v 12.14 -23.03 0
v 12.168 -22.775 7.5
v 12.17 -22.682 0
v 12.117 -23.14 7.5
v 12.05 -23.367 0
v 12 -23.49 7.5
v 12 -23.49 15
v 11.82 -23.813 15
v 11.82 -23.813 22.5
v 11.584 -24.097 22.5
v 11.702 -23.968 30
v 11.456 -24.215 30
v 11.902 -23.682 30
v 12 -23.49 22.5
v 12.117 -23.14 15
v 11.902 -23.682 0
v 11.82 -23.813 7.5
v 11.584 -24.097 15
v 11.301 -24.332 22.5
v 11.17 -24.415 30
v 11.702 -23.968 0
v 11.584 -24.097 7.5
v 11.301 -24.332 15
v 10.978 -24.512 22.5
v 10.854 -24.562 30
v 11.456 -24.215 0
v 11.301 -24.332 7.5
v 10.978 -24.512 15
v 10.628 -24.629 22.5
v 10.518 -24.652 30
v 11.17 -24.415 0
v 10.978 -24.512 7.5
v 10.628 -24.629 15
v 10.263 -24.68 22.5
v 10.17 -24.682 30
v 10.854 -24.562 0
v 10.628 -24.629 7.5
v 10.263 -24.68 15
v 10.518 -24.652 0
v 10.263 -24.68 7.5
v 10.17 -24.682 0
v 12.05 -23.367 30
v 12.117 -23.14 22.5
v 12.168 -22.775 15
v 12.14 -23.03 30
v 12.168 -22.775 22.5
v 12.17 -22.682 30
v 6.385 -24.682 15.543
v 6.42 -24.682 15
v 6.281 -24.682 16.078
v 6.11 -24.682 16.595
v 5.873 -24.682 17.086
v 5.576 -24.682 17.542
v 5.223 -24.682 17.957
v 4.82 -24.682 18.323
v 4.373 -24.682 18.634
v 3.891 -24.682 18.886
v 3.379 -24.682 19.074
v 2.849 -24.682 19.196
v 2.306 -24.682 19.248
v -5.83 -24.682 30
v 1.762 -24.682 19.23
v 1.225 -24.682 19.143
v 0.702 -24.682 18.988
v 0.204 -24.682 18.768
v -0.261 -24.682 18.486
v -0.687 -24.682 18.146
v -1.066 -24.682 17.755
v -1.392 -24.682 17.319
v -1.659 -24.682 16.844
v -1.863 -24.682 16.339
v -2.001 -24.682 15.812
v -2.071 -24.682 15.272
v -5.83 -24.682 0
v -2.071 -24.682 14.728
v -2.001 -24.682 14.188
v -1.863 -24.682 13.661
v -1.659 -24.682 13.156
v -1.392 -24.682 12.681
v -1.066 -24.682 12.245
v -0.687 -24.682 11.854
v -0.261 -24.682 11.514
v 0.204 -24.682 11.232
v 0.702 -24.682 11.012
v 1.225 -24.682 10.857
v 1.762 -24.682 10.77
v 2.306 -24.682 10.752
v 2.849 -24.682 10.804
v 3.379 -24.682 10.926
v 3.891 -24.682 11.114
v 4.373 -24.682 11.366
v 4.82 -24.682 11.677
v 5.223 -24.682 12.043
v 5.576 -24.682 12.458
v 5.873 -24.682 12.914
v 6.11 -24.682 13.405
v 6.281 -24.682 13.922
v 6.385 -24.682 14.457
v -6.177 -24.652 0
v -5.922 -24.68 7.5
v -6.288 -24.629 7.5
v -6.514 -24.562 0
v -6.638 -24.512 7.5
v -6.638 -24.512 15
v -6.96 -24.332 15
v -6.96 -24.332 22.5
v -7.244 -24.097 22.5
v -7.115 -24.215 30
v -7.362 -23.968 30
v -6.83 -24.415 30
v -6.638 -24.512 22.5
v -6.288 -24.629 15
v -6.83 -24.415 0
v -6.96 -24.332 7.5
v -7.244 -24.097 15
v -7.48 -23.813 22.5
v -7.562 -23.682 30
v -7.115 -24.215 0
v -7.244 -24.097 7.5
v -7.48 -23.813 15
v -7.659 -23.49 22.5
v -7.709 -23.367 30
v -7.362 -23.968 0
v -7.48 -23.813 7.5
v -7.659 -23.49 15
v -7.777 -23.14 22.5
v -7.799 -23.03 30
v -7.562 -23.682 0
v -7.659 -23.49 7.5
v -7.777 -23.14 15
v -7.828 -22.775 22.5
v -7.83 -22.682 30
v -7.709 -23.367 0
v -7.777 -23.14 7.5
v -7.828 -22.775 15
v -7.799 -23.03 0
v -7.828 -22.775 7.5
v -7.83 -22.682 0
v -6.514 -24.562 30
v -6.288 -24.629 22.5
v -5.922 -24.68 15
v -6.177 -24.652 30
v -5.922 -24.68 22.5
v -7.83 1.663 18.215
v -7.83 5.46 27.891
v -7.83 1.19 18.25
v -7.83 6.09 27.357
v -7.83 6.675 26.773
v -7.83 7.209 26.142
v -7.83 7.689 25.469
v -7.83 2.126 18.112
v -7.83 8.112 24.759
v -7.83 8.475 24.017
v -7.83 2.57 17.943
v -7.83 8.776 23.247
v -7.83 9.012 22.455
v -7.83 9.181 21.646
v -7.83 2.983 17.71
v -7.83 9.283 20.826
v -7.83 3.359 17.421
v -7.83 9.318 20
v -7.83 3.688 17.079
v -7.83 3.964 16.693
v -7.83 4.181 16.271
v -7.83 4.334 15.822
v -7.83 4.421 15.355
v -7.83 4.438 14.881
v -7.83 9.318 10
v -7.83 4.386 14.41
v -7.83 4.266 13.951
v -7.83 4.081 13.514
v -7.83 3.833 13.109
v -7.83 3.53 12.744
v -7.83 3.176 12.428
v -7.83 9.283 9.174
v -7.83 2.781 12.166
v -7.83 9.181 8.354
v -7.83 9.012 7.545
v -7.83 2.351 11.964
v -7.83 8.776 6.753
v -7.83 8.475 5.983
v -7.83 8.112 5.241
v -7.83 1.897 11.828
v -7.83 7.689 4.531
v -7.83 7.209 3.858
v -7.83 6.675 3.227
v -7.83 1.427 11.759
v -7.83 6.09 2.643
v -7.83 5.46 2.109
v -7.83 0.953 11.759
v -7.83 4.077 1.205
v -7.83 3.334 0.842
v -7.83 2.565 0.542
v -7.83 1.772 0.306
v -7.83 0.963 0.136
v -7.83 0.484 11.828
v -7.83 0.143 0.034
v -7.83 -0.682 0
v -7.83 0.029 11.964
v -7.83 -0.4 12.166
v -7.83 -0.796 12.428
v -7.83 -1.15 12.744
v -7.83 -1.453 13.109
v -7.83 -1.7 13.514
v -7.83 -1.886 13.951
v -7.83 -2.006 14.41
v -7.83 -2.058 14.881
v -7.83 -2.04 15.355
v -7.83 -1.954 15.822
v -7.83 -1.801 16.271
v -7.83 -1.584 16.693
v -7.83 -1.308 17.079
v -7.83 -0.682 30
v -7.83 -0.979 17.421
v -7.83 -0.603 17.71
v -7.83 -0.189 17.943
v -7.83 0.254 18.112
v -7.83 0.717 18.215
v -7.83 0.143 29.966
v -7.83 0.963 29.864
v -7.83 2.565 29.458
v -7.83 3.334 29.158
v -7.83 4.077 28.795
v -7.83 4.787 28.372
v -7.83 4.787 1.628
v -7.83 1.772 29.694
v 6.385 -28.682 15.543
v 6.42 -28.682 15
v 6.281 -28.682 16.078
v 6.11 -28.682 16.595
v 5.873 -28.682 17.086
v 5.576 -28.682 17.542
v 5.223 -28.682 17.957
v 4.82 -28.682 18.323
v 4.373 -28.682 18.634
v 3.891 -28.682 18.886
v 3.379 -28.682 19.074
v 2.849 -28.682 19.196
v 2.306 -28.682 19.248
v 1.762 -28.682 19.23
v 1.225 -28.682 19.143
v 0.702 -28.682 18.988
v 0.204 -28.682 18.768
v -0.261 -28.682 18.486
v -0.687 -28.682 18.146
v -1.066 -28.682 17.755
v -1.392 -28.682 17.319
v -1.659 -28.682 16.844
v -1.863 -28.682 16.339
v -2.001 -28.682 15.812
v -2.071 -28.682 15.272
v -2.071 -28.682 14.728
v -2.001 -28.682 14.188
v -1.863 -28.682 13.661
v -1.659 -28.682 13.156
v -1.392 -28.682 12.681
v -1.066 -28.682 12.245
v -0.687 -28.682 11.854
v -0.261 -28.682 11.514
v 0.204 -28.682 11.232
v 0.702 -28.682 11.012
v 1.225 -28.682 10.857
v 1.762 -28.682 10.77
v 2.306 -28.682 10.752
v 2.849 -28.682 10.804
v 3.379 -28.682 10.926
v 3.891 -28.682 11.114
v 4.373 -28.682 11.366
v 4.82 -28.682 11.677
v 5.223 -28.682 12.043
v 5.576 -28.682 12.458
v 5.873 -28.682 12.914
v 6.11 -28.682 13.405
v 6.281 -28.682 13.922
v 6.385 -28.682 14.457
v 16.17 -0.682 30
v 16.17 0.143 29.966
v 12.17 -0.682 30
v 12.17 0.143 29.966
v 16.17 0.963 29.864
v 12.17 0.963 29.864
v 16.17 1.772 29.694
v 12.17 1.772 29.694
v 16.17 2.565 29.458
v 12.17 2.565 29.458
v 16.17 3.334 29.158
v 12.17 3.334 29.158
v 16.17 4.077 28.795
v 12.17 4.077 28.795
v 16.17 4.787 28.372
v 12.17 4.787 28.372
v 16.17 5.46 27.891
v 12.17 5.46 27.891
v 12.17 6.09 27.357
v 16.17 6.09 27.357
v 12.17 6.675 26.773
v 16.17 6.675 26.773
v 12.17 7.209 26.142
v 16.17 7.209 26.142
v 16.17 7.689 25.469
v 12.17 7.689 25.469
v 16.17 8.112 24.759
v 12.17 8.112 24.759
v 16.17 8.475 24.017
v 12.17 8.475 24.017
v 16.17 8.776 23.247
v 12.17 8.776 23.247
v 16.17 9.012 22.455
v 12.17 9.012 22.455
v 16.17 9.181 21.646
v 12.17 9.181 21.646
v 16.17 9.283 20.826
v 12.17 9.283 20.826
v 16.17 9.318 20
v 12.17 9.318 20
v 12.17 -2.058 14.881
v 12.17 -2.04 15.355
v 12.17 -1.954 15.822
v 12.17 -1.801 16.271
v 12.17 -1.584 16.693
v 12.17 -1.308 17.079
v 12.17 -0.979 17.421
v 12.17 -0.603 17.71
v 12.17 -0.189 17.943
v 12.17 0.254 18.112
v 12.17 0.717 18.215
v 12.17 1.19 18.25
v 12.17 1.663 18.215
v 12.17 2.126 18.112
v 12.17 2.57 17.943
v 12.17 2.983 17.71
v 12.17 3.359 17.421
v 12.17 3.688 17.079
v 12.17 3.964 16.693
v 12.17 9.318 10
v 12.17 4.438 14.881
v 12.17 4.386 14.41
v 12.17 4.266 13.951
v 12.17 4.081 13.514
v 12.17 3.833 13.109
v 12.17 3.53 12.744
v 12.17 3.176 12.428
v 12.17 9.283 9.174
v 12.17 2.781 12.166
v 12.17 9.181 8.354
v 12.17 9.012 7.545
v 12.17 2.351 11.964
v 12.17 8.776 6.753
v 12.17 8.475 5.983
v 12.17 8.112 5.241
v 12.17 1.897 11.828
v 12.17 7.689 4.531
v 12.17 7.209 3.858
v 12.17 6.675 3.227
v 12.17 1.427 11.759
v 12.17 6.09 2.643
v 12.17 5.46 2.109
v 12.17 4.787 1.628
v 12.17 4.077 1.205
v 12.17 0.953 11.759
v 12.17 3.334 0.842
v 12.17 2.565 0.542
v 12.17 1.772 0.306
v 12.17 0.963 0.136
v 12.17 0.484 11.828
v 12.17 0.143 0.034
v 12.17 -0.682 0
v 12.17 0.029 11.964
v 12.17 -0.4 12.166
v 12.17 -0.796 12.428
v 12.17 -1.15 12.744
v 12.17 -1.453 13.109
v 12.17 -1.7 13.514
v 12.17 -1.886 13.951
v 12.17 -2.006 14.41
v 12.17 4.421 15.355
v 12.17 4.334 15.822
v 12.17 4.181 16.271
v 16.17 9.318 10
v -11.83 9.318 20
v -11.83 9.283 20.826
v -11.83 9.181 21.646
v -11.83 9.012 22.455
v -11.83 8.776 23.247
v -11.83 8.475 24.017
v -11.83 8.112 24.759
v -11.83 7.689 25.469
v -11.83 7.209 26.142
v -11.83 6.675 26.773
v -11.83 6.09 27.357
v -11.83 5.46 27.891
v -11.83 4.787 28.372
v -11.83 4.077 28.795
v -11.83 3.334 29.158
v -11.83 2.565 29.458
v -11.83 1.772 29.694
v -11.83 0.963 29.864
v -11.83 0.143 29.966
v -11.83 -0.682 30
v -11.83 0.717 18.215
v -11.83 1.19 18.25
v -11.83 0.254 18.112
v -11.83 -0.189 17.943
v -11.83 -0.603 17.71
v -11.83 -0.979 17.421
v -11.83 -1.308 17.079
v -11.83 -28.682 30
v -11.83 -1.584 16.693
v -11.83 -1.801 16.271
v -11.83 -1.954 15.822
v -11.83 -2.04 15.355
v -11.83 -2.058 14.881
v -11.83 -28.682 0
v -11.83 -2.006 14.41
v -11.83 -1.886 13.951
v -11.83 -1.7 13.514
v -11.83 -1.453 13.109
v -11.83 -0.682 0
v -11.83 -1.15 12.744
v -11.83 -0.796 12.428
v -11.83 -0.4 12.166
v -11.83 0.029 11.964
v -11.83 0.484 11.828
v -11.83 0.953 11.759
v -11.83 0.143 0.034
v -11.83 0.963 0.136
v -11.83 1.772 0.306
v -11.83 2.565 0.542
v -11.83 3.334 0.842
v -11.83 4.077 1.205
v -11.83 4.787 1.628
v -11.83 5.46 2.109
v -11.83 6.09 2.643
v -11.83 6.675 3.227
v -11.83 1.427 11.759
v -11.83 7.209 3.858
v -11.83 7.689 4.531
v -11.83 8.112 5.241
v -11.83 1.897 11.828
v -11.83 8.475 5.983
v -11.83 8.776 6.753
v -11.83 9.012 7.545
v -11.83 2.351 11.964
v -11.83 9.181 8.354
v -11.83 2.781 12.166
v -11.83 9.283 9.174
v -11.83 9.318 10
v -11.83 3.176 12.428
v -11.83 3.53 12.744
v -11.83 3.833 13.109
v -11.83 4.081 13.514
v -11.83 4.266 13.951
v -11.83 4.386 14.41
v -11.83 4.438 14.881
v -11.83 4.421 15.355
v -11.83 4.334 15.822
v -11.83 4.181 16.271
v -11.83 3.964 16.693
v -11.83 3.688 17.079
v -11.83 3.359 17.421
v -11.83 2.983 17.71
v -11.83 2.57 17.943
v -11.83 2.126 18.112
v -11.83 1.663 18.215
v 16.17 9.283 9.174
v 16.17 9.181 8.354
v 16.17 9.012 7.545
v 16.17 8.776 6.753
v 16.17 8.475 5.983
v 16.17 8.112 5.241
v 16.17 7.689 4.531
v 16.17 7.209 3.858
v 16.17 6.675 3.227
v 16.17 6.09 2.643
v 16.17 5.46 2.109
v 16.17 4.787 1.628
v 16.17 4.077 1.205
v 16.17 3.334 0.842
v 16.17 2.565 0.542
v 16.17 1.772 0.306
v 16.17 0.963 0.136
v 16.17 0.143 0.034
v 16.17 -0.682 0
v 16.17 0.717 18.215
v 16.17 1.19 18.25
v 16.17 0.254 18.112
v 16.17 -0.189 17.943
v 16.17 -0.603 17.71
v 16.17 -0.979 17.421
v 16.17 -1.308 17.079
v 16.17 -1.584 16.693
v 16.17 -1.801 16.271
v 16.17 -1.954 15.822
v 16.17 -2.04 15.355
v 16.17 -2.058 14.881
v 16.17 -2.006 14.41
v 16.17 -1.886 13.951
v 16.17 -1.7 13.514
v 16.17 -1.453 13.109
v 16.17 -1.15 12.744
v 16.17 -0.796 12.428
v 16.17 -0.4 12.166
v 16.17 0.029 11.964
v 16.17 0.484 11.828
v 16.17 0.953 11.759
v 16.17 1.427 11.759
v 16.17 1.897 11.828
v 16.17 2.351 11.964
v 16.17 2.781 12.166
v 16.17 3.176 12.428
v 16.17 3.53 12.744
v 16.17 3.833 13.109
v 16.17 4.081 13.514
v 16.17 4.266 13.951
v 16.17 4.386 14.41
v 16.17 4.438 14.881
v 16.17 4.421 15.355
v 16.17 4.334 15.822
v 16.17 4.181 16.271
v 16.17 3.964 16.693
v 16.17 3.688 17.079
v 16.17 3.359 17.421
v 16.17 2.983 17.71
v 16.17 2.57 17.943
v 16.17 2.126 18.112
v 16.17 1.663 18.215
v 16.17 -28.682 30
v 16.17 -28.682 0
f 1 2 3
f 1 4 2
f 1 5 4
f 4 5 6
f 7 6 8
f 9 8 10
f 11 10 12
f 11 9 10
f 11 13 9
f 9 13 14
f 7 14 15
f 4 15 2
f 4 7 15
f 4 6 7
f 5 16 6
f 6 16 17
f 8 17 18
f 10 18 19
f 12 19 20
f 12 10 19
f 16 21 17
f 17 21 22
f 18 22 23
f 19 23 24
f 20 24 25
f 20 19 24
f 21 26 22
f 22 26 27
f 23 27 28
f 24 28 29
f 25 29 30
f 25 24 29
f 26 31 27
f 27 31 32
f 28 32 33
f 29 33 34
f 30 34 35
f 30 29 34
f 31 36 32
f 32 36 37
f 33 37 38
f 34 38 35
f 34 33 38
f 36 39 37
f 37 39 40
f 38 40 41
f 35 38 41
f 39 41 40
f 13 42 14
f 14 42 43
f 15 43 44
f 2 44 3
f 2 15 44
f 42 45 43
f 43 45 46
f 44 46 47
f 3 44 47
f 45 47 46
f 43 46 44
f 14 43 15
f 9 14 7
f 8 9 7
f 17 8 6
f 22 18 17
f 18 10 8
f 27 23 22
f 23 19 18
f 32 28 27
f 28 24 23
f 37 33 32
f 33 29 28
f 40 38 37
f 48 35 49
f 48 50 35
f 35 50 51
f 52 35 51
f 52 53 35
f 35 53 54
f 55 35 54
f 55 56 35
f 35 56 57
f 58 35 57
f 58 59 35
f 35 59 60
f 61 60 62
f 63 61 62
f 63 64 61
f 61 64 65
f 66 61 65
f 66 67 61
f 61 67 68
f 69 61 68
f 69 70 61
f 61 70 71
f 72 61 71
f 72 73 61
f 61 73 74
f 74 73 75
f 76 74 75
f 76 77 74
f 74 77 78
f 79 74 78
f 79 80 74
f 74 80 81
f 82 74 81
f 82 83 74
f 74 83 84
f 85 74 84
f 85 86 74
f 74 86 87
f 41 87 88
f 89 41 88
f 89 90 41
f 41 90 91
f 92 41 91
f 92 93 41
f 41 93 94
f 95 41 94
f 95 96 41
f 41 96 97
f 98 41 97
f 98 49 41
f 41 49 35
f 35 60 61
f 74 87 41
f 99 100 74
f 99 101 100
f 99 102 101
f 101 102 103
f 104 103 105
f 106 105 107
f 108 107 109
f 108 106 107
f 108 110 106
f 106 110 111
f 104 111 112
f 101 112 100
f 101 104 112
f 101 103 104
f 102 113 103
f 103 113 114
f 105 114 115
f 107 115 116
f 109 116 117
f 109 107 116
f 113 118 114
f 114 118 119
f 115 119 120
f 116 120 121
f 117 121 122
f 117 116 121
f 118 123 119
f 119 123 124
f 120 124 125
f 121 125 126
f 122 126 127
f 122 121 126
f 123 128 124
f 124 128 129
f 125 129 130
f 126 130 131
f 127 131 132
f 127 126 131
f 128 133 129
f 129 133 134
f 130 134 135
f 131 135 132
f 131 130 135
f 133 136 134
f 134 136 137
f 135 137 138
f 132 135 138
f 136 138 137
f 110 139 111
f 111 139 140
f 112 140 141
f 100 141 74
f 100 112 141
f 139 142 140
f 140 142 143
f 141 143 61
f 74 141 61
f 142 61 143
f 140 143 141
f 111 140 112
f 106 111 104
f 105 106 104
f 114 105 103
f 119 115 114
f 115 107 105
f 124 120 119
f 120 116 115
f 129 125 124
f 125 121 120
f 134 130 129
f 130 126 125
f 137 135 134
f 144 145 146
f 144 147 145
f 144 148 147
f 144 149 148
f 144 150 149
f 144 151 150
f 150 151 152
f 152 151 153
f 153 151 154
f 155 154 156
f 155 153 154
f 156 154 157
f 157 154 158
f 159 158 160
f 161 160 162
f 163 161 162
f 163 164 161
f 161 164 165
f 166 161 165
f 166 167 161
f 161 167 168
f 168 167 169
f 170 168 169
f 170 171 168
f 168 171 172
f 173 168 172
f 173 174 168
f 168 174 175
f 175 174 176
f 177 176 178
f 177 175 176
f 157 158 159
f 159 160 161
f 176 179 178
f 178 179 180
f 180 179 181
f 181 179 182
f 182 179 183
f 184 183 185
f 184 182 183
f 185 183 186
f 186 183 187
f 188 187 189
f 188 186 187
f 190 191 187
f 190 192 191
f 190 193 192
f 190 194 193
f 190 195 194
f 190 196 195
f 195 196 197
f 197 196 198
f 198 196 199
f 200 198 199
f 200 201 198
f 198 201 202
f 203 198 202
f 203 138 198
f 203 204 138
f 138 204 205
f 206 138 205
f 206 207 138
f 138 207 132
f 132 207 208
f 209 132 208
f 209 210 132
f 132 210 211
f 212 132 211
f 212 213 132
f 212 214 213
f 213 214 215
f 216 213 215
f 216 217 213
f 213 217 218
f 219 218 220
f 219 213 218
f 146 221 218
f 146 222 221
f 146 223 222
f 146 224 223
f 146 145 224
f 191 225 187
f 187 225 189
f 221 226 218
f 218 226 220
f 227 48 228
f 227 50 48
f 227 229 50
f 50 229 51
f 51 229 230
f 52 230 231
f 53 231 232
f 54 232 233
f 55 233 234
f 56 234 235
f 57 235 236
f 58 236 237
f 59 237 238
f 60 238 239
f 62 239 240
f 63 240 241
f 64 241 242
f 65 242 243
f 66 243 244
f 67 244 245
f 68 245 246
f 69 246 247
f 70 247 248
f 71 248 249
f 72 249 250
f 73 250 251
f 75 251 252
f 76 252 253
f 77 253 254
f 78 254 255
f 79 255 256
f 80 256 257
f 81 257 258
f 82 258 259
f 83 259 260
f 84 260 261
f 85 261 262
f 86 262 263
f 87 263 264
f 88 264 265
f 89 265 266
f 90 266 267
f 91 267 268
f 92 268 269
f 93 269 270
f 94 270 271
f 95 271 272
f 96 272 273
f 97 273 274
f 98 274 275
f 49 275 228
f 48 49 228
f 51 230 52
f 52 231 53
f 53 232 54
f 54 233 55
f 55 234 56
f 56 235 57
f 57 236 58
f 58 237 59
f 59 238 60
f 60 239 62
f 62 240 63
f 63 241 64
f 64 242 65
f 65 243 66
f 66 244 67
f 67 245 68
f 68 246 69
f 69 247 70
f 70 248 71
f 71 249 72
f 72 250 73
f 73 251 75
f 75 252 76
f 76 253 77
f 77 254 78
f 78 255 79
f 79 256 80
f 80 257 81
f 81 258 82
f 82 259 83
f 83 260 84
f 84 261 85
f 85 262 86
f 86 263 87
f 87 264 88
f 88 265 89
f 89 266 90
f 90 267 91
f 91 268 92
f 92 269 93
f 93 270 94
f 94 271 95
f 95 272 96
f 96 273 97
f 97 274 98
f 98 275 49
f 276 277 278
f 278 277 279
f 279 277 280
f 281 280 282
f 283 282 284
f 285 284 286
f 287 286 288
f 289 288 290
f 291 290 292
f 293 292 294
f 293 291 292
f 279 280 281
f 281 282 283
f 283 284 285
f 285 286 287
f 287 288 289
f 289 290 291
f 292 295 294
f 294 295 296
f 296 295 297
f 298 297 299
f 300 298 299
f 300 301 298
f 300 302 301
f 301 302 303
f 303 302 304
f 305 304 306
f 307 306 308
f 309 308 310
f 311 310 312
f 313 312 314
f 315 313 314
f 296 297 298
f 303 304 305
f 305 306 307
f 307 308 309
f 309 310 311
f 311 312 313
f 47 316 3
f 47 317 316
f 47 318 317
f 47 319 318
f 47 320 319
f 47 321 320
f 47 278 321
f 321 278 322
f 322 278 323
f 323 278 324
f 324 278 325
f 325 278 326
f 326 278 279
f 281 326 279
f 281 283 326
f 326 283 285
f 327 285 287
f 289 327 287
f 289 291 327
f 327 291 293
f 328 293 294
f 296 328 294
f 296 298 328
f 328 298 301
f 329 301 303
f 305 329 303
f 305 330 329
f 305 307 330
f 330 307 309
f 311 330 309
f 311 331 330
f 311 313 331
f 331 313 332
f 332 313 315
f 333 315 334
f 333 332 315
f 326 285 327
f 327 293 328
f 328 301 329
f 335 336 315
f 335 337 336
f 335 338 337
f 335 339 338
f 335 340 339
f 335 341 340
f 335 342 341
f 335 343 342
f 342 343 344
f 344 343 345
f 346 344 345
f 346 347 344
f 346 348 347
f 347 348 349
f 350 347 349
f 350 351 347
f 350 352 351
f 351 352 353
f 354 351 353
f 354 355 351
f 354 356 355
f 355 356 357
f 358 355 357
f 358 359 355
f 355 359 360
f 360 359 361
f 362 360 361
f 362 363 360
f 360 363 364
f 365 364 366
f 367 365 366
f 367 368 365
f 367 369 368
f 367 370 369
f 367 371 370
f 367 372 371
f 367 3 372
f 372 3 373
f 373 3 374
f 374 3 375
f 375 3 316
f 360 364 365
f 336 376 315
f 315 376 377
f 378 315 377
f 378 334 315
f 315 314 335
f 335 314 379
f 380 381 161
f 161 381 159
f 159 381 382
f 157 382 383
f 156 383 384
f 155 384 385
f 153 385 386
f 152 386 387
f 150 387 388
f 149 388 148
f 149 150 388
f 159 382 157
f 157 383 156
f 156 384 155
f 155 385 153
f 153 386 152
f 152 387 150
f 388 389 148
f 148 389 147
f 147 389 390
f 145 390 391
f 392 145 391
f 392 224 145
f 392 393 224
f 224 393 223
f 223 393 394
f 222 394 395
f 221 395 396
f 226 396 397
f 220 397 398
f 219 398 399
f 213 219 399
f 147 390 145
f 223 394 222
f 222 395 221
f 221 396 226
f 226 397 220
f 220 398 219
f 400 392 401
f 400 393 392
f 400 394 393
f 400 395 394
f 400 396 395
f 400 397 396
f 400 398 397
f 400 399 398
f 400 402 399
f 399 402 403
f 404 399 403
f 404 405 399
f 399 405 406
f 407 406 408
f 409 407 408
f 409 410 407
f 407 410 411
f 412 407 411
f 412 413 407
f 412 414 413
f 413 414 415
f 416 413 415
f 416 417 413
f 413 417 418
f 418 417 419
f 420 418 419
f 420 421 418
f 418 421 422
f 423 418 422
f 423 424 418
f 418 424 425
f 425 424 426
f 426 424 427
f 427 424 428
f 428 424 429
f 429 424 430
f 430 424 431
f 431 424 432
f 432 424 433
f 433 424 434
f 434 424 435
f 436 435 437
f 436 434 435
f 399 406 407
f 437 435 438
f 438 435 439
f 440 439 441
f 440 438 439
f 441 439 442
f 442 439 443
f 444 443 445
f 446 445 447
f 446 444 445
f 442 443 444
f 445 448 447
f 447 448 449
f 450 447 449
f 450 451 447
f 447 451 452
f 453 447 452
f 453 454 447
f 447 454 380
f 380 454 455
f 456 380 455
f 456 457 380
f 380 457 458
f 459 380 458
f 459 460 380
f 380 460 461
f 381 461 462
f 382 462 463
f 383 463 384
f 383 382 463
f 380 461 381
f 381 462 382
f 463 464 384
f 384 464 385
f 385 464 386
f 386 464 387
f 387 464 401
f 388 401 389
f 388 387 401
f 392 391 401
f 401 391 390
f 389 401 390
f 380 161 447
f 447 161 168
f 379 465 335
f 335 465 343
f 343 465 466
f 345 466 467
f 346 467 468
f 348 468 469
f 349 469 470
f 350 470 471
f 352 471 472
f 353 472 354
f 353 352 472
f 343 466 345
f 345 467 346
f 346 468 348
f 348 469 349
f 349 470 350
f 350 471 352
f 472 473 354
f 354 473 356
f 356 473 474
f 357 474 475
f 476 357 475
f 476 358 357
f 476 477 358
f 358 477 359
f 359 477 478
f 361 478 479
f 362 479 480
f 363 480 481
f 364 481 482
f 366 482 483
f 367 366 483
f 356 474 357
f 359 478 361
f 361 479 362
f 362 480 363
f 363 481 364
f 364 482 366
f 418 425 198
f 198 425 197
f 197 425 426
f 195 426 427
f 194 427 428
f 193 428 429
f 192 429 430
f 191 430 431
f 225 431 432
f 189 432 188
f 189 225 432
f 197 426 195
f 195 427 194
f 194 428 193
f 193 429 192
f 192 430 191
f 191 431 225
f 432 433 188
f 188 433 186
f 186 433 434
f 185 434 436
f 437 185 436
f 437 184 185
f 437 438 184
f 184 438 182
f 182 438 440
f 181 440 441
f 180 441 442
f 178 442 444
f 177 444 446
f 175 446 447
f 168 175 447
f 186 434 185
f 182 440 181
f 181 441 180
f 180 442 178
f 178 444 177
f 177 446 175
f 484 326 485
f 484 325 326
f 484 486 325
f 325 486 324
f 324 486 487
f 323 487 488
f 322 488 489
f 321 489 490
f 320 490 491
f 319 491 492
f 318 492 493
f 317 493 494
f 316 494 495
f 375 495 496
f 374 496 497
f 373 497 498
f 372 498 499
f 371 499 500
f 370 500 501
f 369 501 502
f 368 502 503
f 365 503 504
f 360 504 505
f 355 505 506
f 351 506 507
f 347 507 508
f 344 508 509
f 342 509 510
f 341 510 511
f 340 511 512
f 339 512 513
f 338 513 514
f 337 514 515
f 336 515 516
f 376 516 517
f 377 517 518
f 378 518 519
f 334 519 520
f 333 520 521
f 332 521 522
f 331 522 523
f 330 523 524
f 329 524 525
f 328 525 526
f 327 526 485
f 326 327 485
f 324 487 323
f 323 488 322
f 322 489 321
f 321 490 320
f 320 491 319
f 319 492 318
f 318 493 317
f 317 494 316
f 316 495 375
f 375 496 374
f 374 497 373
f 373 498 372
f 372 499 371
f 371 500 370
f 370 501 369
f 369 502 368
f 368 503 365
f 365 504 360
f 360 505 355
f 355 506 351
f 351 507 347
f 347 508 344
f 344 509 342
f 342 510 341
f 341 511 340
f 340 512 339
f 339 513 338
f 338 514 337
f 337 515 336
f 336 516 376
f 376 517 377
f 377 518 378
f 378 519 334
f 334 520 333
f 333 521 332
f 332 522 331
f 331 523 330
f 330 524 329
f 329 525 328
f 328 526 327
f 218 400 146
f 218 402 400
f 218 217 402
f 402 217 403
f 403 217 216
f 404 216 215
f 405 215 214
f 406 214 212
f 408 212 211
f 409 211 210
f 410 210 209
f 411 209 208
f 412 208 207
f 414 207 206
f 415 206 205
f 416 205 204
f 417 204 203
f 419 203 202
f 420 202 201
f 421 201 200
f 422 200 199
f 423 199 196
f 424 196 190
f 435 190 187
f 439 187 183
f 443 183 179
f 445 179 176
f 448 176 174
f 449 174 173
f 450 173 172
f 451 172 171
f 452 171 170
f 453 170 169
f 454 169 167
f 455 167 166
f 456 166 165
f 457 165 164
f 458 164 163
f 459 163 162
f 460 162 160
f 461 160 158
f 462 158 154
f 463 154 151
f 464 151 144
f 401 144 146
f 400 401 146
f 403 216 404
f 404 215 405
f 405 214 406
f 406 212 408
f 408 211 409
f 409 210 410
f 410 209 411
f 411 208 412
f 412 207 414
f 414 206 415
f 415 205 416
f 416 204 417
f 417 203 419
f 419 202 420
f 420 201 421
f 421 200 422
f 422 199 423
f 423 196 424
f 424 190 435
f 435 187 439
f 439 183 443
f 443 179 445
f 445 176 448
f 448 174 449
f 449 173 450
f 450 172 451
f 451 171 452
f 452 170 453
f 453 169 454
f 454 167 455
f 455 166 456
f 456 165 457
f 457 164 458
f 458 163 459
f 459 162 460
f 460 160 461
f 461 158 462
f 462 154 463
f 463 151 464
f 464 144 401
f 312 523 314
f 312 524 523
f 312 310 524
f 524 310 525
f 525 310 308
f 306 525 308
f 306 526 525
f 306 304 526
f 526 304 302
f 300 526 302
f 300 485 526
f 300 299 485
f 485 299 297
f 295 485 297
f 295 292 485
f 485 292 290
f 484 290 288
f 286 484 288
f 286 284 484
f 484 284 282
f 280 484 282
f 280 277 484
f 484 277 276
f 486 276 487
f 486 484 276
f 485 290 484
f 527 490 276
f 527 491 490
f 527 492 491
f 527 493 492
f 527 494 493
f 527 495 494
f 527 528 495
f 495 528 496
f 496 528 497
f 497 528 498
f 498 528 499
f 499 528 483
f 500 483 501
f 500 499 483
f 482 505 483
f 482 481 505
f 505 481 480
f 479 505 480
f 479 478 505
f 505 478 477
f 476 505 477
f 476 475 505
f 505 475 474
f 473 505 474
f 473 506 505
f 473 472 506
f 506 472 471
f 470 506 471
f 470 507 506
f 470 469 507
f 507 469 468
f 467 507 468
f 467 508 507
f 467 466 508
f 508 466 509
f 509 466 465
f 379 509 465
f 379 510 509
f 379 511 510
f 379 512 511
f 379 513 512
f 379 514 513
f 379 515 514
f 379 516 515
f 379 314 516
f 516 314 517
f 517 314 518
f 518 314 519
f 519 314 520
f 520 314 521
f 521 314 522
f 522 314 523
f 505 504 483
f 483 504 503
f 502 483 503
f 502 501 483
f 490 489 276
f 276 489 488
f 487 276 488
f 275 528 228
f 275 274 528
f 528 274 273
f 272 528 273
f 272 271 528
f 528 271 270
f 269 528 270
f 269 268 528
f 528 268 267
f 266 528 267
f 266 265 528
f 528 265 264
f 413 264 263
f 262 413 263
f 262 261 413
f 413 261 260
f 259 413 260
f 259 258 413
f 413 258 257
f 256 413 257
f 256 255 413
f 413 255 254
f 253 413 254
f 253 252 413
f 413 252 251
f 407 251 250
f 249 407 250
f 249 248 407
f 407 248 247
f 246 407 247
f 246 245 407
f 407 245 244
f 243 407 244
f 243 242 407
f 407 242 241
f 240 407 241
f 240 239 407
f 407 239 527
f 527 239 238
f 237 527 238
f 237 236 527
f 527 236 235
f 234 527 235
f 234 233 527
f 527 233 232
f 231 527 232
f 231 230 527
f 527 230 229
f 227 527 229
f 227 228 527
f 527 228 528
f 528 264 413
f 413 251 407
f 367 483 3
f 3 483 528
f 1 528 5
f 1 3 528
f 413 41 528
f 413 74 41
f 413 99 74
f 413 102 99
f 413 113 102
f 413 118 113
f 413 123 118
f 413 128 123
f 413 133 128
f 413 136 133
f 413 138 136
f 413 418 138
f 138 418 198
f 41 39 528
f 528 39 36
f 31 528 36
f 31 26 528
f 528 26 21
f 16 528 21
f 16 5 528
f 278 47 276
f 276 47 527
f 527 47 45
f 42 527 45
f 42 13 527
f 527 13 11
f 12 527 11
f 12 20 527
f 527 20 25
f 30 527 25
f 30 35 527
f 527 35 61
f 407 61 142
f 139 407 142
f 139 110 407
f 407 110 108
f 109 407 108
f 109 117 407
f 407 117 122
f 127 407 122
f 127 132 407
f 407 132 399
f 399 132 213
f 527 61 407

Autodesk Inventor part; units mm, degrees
ref_plane "YZ Plane" through (0, 0, 0) normal (1, 0, 0) x (0, 1, 0)
ref_plane "XZ Plane" through (0, 0, 0) normal (0, 1, 0) x (-1, 0, 0)
ref_plane "XY Plane" through (0, 0, 0) normal (0, 0, 1) x (1, 0, 0)
sketch "Sketch1" plane through (0, 0, 0) normal (0, 0, 1) x (1, 0, 0)
  line L0 (-11.8297, 9.3175) -> (-7.8297, 9.3175)
  line L1 (-7.8297, 9.3175) -> (-7.8297, -24.6825)
  line L2 (-11.8297, -24.6825) -> (-11.8297, 9.3175)
  line L3 (16.1703, -24.6825) -> (16.1703, -28.6825)
  line L4 (16.1703, -28.6825) -> (-11.8297, -28.6825)
  line L5 (-11.8297, -28.6825) -> (-11.8297, -24.6825)
  line L6 (12.1703, -24.6825) -> (12.1703, 9.3175)
  line L7 (12.1703, 9.3175) -> (16.1703, 9.3175)
  line L8 (16.1703, 9.3175) -> (16.1703, -24.6825)
  line L9 (12.1703, -24.6825) -> (-7.8297, -24.6825)
  point P0 (0, 0)
  dimension "d0" = 4
  dimension "d1" = 34
  dimension "d5" = 4
  dimension "d6" = 4
  dimension "d7" = 34
  dimension "d14" = 24
  dimension "d15" = 28
  dimension "d16" = 38
  dimension "d18" = 9.3175
extrude "Extrusion1" add sketch "Sketch1" along normal blind 30
sketch "Sketch2" plane through (-11.8297, -28.6825, 0) normal (-1, 0, 0) x (0, 0, 1)
  line L0 (0, 0) -> (0, 38) construction
  line L1 (0, 0) -> (30, 0) construction
  line L2 (30, 38) -> (30, 0) construction
  line L3 (0, 38) -> (30, 38) construction
  line L4 (0, 38) -> (30, 38) construction
  line L5 (15, 38) -> (15, 0) construction
  circle A0 centre (15, 29.8727) radius 3.25
  point P0 (0, 28.6825)
  dimension "d10" = 6.5
extrude "Extrusion2" cut sketch "Sketch2" against normal through all
fillet "Fillet1" radius 10 4 edges at (-9.8297, 9.3175, 0) (14.1703, 9.3175, 0) (-9.8297, 9.3175, 30) (14.1703, 9.3175, 30)
sketch "Sketch3" plane through (-7.8297, -24.6825, 0) normal (0, 1, 0) x (1, 0, 0)
  line L0 (0, 0) -> (20, 0) projected
  line L1 (0, 0) -> (0, -30) projected
  line L2 (20, -30) -> (0, -30) projected
  line L3 (20, 0) -> (20, -30) projected
  circle A0 centre (10, -15) radius 4.25
  point P0 (7.8297, 0)
  dimension "d19" = 8.5
extrude "Extrusion3" cut sketch "Sketch3" against normal through all contours A0
fillet "Fillet2" radius 2 2 edges at (-7.8297, -24.6825, 15) (12.1703, -24.6825, 15)
equation "\"d1\" = d7"
properties part number "linear actuator bracket"
